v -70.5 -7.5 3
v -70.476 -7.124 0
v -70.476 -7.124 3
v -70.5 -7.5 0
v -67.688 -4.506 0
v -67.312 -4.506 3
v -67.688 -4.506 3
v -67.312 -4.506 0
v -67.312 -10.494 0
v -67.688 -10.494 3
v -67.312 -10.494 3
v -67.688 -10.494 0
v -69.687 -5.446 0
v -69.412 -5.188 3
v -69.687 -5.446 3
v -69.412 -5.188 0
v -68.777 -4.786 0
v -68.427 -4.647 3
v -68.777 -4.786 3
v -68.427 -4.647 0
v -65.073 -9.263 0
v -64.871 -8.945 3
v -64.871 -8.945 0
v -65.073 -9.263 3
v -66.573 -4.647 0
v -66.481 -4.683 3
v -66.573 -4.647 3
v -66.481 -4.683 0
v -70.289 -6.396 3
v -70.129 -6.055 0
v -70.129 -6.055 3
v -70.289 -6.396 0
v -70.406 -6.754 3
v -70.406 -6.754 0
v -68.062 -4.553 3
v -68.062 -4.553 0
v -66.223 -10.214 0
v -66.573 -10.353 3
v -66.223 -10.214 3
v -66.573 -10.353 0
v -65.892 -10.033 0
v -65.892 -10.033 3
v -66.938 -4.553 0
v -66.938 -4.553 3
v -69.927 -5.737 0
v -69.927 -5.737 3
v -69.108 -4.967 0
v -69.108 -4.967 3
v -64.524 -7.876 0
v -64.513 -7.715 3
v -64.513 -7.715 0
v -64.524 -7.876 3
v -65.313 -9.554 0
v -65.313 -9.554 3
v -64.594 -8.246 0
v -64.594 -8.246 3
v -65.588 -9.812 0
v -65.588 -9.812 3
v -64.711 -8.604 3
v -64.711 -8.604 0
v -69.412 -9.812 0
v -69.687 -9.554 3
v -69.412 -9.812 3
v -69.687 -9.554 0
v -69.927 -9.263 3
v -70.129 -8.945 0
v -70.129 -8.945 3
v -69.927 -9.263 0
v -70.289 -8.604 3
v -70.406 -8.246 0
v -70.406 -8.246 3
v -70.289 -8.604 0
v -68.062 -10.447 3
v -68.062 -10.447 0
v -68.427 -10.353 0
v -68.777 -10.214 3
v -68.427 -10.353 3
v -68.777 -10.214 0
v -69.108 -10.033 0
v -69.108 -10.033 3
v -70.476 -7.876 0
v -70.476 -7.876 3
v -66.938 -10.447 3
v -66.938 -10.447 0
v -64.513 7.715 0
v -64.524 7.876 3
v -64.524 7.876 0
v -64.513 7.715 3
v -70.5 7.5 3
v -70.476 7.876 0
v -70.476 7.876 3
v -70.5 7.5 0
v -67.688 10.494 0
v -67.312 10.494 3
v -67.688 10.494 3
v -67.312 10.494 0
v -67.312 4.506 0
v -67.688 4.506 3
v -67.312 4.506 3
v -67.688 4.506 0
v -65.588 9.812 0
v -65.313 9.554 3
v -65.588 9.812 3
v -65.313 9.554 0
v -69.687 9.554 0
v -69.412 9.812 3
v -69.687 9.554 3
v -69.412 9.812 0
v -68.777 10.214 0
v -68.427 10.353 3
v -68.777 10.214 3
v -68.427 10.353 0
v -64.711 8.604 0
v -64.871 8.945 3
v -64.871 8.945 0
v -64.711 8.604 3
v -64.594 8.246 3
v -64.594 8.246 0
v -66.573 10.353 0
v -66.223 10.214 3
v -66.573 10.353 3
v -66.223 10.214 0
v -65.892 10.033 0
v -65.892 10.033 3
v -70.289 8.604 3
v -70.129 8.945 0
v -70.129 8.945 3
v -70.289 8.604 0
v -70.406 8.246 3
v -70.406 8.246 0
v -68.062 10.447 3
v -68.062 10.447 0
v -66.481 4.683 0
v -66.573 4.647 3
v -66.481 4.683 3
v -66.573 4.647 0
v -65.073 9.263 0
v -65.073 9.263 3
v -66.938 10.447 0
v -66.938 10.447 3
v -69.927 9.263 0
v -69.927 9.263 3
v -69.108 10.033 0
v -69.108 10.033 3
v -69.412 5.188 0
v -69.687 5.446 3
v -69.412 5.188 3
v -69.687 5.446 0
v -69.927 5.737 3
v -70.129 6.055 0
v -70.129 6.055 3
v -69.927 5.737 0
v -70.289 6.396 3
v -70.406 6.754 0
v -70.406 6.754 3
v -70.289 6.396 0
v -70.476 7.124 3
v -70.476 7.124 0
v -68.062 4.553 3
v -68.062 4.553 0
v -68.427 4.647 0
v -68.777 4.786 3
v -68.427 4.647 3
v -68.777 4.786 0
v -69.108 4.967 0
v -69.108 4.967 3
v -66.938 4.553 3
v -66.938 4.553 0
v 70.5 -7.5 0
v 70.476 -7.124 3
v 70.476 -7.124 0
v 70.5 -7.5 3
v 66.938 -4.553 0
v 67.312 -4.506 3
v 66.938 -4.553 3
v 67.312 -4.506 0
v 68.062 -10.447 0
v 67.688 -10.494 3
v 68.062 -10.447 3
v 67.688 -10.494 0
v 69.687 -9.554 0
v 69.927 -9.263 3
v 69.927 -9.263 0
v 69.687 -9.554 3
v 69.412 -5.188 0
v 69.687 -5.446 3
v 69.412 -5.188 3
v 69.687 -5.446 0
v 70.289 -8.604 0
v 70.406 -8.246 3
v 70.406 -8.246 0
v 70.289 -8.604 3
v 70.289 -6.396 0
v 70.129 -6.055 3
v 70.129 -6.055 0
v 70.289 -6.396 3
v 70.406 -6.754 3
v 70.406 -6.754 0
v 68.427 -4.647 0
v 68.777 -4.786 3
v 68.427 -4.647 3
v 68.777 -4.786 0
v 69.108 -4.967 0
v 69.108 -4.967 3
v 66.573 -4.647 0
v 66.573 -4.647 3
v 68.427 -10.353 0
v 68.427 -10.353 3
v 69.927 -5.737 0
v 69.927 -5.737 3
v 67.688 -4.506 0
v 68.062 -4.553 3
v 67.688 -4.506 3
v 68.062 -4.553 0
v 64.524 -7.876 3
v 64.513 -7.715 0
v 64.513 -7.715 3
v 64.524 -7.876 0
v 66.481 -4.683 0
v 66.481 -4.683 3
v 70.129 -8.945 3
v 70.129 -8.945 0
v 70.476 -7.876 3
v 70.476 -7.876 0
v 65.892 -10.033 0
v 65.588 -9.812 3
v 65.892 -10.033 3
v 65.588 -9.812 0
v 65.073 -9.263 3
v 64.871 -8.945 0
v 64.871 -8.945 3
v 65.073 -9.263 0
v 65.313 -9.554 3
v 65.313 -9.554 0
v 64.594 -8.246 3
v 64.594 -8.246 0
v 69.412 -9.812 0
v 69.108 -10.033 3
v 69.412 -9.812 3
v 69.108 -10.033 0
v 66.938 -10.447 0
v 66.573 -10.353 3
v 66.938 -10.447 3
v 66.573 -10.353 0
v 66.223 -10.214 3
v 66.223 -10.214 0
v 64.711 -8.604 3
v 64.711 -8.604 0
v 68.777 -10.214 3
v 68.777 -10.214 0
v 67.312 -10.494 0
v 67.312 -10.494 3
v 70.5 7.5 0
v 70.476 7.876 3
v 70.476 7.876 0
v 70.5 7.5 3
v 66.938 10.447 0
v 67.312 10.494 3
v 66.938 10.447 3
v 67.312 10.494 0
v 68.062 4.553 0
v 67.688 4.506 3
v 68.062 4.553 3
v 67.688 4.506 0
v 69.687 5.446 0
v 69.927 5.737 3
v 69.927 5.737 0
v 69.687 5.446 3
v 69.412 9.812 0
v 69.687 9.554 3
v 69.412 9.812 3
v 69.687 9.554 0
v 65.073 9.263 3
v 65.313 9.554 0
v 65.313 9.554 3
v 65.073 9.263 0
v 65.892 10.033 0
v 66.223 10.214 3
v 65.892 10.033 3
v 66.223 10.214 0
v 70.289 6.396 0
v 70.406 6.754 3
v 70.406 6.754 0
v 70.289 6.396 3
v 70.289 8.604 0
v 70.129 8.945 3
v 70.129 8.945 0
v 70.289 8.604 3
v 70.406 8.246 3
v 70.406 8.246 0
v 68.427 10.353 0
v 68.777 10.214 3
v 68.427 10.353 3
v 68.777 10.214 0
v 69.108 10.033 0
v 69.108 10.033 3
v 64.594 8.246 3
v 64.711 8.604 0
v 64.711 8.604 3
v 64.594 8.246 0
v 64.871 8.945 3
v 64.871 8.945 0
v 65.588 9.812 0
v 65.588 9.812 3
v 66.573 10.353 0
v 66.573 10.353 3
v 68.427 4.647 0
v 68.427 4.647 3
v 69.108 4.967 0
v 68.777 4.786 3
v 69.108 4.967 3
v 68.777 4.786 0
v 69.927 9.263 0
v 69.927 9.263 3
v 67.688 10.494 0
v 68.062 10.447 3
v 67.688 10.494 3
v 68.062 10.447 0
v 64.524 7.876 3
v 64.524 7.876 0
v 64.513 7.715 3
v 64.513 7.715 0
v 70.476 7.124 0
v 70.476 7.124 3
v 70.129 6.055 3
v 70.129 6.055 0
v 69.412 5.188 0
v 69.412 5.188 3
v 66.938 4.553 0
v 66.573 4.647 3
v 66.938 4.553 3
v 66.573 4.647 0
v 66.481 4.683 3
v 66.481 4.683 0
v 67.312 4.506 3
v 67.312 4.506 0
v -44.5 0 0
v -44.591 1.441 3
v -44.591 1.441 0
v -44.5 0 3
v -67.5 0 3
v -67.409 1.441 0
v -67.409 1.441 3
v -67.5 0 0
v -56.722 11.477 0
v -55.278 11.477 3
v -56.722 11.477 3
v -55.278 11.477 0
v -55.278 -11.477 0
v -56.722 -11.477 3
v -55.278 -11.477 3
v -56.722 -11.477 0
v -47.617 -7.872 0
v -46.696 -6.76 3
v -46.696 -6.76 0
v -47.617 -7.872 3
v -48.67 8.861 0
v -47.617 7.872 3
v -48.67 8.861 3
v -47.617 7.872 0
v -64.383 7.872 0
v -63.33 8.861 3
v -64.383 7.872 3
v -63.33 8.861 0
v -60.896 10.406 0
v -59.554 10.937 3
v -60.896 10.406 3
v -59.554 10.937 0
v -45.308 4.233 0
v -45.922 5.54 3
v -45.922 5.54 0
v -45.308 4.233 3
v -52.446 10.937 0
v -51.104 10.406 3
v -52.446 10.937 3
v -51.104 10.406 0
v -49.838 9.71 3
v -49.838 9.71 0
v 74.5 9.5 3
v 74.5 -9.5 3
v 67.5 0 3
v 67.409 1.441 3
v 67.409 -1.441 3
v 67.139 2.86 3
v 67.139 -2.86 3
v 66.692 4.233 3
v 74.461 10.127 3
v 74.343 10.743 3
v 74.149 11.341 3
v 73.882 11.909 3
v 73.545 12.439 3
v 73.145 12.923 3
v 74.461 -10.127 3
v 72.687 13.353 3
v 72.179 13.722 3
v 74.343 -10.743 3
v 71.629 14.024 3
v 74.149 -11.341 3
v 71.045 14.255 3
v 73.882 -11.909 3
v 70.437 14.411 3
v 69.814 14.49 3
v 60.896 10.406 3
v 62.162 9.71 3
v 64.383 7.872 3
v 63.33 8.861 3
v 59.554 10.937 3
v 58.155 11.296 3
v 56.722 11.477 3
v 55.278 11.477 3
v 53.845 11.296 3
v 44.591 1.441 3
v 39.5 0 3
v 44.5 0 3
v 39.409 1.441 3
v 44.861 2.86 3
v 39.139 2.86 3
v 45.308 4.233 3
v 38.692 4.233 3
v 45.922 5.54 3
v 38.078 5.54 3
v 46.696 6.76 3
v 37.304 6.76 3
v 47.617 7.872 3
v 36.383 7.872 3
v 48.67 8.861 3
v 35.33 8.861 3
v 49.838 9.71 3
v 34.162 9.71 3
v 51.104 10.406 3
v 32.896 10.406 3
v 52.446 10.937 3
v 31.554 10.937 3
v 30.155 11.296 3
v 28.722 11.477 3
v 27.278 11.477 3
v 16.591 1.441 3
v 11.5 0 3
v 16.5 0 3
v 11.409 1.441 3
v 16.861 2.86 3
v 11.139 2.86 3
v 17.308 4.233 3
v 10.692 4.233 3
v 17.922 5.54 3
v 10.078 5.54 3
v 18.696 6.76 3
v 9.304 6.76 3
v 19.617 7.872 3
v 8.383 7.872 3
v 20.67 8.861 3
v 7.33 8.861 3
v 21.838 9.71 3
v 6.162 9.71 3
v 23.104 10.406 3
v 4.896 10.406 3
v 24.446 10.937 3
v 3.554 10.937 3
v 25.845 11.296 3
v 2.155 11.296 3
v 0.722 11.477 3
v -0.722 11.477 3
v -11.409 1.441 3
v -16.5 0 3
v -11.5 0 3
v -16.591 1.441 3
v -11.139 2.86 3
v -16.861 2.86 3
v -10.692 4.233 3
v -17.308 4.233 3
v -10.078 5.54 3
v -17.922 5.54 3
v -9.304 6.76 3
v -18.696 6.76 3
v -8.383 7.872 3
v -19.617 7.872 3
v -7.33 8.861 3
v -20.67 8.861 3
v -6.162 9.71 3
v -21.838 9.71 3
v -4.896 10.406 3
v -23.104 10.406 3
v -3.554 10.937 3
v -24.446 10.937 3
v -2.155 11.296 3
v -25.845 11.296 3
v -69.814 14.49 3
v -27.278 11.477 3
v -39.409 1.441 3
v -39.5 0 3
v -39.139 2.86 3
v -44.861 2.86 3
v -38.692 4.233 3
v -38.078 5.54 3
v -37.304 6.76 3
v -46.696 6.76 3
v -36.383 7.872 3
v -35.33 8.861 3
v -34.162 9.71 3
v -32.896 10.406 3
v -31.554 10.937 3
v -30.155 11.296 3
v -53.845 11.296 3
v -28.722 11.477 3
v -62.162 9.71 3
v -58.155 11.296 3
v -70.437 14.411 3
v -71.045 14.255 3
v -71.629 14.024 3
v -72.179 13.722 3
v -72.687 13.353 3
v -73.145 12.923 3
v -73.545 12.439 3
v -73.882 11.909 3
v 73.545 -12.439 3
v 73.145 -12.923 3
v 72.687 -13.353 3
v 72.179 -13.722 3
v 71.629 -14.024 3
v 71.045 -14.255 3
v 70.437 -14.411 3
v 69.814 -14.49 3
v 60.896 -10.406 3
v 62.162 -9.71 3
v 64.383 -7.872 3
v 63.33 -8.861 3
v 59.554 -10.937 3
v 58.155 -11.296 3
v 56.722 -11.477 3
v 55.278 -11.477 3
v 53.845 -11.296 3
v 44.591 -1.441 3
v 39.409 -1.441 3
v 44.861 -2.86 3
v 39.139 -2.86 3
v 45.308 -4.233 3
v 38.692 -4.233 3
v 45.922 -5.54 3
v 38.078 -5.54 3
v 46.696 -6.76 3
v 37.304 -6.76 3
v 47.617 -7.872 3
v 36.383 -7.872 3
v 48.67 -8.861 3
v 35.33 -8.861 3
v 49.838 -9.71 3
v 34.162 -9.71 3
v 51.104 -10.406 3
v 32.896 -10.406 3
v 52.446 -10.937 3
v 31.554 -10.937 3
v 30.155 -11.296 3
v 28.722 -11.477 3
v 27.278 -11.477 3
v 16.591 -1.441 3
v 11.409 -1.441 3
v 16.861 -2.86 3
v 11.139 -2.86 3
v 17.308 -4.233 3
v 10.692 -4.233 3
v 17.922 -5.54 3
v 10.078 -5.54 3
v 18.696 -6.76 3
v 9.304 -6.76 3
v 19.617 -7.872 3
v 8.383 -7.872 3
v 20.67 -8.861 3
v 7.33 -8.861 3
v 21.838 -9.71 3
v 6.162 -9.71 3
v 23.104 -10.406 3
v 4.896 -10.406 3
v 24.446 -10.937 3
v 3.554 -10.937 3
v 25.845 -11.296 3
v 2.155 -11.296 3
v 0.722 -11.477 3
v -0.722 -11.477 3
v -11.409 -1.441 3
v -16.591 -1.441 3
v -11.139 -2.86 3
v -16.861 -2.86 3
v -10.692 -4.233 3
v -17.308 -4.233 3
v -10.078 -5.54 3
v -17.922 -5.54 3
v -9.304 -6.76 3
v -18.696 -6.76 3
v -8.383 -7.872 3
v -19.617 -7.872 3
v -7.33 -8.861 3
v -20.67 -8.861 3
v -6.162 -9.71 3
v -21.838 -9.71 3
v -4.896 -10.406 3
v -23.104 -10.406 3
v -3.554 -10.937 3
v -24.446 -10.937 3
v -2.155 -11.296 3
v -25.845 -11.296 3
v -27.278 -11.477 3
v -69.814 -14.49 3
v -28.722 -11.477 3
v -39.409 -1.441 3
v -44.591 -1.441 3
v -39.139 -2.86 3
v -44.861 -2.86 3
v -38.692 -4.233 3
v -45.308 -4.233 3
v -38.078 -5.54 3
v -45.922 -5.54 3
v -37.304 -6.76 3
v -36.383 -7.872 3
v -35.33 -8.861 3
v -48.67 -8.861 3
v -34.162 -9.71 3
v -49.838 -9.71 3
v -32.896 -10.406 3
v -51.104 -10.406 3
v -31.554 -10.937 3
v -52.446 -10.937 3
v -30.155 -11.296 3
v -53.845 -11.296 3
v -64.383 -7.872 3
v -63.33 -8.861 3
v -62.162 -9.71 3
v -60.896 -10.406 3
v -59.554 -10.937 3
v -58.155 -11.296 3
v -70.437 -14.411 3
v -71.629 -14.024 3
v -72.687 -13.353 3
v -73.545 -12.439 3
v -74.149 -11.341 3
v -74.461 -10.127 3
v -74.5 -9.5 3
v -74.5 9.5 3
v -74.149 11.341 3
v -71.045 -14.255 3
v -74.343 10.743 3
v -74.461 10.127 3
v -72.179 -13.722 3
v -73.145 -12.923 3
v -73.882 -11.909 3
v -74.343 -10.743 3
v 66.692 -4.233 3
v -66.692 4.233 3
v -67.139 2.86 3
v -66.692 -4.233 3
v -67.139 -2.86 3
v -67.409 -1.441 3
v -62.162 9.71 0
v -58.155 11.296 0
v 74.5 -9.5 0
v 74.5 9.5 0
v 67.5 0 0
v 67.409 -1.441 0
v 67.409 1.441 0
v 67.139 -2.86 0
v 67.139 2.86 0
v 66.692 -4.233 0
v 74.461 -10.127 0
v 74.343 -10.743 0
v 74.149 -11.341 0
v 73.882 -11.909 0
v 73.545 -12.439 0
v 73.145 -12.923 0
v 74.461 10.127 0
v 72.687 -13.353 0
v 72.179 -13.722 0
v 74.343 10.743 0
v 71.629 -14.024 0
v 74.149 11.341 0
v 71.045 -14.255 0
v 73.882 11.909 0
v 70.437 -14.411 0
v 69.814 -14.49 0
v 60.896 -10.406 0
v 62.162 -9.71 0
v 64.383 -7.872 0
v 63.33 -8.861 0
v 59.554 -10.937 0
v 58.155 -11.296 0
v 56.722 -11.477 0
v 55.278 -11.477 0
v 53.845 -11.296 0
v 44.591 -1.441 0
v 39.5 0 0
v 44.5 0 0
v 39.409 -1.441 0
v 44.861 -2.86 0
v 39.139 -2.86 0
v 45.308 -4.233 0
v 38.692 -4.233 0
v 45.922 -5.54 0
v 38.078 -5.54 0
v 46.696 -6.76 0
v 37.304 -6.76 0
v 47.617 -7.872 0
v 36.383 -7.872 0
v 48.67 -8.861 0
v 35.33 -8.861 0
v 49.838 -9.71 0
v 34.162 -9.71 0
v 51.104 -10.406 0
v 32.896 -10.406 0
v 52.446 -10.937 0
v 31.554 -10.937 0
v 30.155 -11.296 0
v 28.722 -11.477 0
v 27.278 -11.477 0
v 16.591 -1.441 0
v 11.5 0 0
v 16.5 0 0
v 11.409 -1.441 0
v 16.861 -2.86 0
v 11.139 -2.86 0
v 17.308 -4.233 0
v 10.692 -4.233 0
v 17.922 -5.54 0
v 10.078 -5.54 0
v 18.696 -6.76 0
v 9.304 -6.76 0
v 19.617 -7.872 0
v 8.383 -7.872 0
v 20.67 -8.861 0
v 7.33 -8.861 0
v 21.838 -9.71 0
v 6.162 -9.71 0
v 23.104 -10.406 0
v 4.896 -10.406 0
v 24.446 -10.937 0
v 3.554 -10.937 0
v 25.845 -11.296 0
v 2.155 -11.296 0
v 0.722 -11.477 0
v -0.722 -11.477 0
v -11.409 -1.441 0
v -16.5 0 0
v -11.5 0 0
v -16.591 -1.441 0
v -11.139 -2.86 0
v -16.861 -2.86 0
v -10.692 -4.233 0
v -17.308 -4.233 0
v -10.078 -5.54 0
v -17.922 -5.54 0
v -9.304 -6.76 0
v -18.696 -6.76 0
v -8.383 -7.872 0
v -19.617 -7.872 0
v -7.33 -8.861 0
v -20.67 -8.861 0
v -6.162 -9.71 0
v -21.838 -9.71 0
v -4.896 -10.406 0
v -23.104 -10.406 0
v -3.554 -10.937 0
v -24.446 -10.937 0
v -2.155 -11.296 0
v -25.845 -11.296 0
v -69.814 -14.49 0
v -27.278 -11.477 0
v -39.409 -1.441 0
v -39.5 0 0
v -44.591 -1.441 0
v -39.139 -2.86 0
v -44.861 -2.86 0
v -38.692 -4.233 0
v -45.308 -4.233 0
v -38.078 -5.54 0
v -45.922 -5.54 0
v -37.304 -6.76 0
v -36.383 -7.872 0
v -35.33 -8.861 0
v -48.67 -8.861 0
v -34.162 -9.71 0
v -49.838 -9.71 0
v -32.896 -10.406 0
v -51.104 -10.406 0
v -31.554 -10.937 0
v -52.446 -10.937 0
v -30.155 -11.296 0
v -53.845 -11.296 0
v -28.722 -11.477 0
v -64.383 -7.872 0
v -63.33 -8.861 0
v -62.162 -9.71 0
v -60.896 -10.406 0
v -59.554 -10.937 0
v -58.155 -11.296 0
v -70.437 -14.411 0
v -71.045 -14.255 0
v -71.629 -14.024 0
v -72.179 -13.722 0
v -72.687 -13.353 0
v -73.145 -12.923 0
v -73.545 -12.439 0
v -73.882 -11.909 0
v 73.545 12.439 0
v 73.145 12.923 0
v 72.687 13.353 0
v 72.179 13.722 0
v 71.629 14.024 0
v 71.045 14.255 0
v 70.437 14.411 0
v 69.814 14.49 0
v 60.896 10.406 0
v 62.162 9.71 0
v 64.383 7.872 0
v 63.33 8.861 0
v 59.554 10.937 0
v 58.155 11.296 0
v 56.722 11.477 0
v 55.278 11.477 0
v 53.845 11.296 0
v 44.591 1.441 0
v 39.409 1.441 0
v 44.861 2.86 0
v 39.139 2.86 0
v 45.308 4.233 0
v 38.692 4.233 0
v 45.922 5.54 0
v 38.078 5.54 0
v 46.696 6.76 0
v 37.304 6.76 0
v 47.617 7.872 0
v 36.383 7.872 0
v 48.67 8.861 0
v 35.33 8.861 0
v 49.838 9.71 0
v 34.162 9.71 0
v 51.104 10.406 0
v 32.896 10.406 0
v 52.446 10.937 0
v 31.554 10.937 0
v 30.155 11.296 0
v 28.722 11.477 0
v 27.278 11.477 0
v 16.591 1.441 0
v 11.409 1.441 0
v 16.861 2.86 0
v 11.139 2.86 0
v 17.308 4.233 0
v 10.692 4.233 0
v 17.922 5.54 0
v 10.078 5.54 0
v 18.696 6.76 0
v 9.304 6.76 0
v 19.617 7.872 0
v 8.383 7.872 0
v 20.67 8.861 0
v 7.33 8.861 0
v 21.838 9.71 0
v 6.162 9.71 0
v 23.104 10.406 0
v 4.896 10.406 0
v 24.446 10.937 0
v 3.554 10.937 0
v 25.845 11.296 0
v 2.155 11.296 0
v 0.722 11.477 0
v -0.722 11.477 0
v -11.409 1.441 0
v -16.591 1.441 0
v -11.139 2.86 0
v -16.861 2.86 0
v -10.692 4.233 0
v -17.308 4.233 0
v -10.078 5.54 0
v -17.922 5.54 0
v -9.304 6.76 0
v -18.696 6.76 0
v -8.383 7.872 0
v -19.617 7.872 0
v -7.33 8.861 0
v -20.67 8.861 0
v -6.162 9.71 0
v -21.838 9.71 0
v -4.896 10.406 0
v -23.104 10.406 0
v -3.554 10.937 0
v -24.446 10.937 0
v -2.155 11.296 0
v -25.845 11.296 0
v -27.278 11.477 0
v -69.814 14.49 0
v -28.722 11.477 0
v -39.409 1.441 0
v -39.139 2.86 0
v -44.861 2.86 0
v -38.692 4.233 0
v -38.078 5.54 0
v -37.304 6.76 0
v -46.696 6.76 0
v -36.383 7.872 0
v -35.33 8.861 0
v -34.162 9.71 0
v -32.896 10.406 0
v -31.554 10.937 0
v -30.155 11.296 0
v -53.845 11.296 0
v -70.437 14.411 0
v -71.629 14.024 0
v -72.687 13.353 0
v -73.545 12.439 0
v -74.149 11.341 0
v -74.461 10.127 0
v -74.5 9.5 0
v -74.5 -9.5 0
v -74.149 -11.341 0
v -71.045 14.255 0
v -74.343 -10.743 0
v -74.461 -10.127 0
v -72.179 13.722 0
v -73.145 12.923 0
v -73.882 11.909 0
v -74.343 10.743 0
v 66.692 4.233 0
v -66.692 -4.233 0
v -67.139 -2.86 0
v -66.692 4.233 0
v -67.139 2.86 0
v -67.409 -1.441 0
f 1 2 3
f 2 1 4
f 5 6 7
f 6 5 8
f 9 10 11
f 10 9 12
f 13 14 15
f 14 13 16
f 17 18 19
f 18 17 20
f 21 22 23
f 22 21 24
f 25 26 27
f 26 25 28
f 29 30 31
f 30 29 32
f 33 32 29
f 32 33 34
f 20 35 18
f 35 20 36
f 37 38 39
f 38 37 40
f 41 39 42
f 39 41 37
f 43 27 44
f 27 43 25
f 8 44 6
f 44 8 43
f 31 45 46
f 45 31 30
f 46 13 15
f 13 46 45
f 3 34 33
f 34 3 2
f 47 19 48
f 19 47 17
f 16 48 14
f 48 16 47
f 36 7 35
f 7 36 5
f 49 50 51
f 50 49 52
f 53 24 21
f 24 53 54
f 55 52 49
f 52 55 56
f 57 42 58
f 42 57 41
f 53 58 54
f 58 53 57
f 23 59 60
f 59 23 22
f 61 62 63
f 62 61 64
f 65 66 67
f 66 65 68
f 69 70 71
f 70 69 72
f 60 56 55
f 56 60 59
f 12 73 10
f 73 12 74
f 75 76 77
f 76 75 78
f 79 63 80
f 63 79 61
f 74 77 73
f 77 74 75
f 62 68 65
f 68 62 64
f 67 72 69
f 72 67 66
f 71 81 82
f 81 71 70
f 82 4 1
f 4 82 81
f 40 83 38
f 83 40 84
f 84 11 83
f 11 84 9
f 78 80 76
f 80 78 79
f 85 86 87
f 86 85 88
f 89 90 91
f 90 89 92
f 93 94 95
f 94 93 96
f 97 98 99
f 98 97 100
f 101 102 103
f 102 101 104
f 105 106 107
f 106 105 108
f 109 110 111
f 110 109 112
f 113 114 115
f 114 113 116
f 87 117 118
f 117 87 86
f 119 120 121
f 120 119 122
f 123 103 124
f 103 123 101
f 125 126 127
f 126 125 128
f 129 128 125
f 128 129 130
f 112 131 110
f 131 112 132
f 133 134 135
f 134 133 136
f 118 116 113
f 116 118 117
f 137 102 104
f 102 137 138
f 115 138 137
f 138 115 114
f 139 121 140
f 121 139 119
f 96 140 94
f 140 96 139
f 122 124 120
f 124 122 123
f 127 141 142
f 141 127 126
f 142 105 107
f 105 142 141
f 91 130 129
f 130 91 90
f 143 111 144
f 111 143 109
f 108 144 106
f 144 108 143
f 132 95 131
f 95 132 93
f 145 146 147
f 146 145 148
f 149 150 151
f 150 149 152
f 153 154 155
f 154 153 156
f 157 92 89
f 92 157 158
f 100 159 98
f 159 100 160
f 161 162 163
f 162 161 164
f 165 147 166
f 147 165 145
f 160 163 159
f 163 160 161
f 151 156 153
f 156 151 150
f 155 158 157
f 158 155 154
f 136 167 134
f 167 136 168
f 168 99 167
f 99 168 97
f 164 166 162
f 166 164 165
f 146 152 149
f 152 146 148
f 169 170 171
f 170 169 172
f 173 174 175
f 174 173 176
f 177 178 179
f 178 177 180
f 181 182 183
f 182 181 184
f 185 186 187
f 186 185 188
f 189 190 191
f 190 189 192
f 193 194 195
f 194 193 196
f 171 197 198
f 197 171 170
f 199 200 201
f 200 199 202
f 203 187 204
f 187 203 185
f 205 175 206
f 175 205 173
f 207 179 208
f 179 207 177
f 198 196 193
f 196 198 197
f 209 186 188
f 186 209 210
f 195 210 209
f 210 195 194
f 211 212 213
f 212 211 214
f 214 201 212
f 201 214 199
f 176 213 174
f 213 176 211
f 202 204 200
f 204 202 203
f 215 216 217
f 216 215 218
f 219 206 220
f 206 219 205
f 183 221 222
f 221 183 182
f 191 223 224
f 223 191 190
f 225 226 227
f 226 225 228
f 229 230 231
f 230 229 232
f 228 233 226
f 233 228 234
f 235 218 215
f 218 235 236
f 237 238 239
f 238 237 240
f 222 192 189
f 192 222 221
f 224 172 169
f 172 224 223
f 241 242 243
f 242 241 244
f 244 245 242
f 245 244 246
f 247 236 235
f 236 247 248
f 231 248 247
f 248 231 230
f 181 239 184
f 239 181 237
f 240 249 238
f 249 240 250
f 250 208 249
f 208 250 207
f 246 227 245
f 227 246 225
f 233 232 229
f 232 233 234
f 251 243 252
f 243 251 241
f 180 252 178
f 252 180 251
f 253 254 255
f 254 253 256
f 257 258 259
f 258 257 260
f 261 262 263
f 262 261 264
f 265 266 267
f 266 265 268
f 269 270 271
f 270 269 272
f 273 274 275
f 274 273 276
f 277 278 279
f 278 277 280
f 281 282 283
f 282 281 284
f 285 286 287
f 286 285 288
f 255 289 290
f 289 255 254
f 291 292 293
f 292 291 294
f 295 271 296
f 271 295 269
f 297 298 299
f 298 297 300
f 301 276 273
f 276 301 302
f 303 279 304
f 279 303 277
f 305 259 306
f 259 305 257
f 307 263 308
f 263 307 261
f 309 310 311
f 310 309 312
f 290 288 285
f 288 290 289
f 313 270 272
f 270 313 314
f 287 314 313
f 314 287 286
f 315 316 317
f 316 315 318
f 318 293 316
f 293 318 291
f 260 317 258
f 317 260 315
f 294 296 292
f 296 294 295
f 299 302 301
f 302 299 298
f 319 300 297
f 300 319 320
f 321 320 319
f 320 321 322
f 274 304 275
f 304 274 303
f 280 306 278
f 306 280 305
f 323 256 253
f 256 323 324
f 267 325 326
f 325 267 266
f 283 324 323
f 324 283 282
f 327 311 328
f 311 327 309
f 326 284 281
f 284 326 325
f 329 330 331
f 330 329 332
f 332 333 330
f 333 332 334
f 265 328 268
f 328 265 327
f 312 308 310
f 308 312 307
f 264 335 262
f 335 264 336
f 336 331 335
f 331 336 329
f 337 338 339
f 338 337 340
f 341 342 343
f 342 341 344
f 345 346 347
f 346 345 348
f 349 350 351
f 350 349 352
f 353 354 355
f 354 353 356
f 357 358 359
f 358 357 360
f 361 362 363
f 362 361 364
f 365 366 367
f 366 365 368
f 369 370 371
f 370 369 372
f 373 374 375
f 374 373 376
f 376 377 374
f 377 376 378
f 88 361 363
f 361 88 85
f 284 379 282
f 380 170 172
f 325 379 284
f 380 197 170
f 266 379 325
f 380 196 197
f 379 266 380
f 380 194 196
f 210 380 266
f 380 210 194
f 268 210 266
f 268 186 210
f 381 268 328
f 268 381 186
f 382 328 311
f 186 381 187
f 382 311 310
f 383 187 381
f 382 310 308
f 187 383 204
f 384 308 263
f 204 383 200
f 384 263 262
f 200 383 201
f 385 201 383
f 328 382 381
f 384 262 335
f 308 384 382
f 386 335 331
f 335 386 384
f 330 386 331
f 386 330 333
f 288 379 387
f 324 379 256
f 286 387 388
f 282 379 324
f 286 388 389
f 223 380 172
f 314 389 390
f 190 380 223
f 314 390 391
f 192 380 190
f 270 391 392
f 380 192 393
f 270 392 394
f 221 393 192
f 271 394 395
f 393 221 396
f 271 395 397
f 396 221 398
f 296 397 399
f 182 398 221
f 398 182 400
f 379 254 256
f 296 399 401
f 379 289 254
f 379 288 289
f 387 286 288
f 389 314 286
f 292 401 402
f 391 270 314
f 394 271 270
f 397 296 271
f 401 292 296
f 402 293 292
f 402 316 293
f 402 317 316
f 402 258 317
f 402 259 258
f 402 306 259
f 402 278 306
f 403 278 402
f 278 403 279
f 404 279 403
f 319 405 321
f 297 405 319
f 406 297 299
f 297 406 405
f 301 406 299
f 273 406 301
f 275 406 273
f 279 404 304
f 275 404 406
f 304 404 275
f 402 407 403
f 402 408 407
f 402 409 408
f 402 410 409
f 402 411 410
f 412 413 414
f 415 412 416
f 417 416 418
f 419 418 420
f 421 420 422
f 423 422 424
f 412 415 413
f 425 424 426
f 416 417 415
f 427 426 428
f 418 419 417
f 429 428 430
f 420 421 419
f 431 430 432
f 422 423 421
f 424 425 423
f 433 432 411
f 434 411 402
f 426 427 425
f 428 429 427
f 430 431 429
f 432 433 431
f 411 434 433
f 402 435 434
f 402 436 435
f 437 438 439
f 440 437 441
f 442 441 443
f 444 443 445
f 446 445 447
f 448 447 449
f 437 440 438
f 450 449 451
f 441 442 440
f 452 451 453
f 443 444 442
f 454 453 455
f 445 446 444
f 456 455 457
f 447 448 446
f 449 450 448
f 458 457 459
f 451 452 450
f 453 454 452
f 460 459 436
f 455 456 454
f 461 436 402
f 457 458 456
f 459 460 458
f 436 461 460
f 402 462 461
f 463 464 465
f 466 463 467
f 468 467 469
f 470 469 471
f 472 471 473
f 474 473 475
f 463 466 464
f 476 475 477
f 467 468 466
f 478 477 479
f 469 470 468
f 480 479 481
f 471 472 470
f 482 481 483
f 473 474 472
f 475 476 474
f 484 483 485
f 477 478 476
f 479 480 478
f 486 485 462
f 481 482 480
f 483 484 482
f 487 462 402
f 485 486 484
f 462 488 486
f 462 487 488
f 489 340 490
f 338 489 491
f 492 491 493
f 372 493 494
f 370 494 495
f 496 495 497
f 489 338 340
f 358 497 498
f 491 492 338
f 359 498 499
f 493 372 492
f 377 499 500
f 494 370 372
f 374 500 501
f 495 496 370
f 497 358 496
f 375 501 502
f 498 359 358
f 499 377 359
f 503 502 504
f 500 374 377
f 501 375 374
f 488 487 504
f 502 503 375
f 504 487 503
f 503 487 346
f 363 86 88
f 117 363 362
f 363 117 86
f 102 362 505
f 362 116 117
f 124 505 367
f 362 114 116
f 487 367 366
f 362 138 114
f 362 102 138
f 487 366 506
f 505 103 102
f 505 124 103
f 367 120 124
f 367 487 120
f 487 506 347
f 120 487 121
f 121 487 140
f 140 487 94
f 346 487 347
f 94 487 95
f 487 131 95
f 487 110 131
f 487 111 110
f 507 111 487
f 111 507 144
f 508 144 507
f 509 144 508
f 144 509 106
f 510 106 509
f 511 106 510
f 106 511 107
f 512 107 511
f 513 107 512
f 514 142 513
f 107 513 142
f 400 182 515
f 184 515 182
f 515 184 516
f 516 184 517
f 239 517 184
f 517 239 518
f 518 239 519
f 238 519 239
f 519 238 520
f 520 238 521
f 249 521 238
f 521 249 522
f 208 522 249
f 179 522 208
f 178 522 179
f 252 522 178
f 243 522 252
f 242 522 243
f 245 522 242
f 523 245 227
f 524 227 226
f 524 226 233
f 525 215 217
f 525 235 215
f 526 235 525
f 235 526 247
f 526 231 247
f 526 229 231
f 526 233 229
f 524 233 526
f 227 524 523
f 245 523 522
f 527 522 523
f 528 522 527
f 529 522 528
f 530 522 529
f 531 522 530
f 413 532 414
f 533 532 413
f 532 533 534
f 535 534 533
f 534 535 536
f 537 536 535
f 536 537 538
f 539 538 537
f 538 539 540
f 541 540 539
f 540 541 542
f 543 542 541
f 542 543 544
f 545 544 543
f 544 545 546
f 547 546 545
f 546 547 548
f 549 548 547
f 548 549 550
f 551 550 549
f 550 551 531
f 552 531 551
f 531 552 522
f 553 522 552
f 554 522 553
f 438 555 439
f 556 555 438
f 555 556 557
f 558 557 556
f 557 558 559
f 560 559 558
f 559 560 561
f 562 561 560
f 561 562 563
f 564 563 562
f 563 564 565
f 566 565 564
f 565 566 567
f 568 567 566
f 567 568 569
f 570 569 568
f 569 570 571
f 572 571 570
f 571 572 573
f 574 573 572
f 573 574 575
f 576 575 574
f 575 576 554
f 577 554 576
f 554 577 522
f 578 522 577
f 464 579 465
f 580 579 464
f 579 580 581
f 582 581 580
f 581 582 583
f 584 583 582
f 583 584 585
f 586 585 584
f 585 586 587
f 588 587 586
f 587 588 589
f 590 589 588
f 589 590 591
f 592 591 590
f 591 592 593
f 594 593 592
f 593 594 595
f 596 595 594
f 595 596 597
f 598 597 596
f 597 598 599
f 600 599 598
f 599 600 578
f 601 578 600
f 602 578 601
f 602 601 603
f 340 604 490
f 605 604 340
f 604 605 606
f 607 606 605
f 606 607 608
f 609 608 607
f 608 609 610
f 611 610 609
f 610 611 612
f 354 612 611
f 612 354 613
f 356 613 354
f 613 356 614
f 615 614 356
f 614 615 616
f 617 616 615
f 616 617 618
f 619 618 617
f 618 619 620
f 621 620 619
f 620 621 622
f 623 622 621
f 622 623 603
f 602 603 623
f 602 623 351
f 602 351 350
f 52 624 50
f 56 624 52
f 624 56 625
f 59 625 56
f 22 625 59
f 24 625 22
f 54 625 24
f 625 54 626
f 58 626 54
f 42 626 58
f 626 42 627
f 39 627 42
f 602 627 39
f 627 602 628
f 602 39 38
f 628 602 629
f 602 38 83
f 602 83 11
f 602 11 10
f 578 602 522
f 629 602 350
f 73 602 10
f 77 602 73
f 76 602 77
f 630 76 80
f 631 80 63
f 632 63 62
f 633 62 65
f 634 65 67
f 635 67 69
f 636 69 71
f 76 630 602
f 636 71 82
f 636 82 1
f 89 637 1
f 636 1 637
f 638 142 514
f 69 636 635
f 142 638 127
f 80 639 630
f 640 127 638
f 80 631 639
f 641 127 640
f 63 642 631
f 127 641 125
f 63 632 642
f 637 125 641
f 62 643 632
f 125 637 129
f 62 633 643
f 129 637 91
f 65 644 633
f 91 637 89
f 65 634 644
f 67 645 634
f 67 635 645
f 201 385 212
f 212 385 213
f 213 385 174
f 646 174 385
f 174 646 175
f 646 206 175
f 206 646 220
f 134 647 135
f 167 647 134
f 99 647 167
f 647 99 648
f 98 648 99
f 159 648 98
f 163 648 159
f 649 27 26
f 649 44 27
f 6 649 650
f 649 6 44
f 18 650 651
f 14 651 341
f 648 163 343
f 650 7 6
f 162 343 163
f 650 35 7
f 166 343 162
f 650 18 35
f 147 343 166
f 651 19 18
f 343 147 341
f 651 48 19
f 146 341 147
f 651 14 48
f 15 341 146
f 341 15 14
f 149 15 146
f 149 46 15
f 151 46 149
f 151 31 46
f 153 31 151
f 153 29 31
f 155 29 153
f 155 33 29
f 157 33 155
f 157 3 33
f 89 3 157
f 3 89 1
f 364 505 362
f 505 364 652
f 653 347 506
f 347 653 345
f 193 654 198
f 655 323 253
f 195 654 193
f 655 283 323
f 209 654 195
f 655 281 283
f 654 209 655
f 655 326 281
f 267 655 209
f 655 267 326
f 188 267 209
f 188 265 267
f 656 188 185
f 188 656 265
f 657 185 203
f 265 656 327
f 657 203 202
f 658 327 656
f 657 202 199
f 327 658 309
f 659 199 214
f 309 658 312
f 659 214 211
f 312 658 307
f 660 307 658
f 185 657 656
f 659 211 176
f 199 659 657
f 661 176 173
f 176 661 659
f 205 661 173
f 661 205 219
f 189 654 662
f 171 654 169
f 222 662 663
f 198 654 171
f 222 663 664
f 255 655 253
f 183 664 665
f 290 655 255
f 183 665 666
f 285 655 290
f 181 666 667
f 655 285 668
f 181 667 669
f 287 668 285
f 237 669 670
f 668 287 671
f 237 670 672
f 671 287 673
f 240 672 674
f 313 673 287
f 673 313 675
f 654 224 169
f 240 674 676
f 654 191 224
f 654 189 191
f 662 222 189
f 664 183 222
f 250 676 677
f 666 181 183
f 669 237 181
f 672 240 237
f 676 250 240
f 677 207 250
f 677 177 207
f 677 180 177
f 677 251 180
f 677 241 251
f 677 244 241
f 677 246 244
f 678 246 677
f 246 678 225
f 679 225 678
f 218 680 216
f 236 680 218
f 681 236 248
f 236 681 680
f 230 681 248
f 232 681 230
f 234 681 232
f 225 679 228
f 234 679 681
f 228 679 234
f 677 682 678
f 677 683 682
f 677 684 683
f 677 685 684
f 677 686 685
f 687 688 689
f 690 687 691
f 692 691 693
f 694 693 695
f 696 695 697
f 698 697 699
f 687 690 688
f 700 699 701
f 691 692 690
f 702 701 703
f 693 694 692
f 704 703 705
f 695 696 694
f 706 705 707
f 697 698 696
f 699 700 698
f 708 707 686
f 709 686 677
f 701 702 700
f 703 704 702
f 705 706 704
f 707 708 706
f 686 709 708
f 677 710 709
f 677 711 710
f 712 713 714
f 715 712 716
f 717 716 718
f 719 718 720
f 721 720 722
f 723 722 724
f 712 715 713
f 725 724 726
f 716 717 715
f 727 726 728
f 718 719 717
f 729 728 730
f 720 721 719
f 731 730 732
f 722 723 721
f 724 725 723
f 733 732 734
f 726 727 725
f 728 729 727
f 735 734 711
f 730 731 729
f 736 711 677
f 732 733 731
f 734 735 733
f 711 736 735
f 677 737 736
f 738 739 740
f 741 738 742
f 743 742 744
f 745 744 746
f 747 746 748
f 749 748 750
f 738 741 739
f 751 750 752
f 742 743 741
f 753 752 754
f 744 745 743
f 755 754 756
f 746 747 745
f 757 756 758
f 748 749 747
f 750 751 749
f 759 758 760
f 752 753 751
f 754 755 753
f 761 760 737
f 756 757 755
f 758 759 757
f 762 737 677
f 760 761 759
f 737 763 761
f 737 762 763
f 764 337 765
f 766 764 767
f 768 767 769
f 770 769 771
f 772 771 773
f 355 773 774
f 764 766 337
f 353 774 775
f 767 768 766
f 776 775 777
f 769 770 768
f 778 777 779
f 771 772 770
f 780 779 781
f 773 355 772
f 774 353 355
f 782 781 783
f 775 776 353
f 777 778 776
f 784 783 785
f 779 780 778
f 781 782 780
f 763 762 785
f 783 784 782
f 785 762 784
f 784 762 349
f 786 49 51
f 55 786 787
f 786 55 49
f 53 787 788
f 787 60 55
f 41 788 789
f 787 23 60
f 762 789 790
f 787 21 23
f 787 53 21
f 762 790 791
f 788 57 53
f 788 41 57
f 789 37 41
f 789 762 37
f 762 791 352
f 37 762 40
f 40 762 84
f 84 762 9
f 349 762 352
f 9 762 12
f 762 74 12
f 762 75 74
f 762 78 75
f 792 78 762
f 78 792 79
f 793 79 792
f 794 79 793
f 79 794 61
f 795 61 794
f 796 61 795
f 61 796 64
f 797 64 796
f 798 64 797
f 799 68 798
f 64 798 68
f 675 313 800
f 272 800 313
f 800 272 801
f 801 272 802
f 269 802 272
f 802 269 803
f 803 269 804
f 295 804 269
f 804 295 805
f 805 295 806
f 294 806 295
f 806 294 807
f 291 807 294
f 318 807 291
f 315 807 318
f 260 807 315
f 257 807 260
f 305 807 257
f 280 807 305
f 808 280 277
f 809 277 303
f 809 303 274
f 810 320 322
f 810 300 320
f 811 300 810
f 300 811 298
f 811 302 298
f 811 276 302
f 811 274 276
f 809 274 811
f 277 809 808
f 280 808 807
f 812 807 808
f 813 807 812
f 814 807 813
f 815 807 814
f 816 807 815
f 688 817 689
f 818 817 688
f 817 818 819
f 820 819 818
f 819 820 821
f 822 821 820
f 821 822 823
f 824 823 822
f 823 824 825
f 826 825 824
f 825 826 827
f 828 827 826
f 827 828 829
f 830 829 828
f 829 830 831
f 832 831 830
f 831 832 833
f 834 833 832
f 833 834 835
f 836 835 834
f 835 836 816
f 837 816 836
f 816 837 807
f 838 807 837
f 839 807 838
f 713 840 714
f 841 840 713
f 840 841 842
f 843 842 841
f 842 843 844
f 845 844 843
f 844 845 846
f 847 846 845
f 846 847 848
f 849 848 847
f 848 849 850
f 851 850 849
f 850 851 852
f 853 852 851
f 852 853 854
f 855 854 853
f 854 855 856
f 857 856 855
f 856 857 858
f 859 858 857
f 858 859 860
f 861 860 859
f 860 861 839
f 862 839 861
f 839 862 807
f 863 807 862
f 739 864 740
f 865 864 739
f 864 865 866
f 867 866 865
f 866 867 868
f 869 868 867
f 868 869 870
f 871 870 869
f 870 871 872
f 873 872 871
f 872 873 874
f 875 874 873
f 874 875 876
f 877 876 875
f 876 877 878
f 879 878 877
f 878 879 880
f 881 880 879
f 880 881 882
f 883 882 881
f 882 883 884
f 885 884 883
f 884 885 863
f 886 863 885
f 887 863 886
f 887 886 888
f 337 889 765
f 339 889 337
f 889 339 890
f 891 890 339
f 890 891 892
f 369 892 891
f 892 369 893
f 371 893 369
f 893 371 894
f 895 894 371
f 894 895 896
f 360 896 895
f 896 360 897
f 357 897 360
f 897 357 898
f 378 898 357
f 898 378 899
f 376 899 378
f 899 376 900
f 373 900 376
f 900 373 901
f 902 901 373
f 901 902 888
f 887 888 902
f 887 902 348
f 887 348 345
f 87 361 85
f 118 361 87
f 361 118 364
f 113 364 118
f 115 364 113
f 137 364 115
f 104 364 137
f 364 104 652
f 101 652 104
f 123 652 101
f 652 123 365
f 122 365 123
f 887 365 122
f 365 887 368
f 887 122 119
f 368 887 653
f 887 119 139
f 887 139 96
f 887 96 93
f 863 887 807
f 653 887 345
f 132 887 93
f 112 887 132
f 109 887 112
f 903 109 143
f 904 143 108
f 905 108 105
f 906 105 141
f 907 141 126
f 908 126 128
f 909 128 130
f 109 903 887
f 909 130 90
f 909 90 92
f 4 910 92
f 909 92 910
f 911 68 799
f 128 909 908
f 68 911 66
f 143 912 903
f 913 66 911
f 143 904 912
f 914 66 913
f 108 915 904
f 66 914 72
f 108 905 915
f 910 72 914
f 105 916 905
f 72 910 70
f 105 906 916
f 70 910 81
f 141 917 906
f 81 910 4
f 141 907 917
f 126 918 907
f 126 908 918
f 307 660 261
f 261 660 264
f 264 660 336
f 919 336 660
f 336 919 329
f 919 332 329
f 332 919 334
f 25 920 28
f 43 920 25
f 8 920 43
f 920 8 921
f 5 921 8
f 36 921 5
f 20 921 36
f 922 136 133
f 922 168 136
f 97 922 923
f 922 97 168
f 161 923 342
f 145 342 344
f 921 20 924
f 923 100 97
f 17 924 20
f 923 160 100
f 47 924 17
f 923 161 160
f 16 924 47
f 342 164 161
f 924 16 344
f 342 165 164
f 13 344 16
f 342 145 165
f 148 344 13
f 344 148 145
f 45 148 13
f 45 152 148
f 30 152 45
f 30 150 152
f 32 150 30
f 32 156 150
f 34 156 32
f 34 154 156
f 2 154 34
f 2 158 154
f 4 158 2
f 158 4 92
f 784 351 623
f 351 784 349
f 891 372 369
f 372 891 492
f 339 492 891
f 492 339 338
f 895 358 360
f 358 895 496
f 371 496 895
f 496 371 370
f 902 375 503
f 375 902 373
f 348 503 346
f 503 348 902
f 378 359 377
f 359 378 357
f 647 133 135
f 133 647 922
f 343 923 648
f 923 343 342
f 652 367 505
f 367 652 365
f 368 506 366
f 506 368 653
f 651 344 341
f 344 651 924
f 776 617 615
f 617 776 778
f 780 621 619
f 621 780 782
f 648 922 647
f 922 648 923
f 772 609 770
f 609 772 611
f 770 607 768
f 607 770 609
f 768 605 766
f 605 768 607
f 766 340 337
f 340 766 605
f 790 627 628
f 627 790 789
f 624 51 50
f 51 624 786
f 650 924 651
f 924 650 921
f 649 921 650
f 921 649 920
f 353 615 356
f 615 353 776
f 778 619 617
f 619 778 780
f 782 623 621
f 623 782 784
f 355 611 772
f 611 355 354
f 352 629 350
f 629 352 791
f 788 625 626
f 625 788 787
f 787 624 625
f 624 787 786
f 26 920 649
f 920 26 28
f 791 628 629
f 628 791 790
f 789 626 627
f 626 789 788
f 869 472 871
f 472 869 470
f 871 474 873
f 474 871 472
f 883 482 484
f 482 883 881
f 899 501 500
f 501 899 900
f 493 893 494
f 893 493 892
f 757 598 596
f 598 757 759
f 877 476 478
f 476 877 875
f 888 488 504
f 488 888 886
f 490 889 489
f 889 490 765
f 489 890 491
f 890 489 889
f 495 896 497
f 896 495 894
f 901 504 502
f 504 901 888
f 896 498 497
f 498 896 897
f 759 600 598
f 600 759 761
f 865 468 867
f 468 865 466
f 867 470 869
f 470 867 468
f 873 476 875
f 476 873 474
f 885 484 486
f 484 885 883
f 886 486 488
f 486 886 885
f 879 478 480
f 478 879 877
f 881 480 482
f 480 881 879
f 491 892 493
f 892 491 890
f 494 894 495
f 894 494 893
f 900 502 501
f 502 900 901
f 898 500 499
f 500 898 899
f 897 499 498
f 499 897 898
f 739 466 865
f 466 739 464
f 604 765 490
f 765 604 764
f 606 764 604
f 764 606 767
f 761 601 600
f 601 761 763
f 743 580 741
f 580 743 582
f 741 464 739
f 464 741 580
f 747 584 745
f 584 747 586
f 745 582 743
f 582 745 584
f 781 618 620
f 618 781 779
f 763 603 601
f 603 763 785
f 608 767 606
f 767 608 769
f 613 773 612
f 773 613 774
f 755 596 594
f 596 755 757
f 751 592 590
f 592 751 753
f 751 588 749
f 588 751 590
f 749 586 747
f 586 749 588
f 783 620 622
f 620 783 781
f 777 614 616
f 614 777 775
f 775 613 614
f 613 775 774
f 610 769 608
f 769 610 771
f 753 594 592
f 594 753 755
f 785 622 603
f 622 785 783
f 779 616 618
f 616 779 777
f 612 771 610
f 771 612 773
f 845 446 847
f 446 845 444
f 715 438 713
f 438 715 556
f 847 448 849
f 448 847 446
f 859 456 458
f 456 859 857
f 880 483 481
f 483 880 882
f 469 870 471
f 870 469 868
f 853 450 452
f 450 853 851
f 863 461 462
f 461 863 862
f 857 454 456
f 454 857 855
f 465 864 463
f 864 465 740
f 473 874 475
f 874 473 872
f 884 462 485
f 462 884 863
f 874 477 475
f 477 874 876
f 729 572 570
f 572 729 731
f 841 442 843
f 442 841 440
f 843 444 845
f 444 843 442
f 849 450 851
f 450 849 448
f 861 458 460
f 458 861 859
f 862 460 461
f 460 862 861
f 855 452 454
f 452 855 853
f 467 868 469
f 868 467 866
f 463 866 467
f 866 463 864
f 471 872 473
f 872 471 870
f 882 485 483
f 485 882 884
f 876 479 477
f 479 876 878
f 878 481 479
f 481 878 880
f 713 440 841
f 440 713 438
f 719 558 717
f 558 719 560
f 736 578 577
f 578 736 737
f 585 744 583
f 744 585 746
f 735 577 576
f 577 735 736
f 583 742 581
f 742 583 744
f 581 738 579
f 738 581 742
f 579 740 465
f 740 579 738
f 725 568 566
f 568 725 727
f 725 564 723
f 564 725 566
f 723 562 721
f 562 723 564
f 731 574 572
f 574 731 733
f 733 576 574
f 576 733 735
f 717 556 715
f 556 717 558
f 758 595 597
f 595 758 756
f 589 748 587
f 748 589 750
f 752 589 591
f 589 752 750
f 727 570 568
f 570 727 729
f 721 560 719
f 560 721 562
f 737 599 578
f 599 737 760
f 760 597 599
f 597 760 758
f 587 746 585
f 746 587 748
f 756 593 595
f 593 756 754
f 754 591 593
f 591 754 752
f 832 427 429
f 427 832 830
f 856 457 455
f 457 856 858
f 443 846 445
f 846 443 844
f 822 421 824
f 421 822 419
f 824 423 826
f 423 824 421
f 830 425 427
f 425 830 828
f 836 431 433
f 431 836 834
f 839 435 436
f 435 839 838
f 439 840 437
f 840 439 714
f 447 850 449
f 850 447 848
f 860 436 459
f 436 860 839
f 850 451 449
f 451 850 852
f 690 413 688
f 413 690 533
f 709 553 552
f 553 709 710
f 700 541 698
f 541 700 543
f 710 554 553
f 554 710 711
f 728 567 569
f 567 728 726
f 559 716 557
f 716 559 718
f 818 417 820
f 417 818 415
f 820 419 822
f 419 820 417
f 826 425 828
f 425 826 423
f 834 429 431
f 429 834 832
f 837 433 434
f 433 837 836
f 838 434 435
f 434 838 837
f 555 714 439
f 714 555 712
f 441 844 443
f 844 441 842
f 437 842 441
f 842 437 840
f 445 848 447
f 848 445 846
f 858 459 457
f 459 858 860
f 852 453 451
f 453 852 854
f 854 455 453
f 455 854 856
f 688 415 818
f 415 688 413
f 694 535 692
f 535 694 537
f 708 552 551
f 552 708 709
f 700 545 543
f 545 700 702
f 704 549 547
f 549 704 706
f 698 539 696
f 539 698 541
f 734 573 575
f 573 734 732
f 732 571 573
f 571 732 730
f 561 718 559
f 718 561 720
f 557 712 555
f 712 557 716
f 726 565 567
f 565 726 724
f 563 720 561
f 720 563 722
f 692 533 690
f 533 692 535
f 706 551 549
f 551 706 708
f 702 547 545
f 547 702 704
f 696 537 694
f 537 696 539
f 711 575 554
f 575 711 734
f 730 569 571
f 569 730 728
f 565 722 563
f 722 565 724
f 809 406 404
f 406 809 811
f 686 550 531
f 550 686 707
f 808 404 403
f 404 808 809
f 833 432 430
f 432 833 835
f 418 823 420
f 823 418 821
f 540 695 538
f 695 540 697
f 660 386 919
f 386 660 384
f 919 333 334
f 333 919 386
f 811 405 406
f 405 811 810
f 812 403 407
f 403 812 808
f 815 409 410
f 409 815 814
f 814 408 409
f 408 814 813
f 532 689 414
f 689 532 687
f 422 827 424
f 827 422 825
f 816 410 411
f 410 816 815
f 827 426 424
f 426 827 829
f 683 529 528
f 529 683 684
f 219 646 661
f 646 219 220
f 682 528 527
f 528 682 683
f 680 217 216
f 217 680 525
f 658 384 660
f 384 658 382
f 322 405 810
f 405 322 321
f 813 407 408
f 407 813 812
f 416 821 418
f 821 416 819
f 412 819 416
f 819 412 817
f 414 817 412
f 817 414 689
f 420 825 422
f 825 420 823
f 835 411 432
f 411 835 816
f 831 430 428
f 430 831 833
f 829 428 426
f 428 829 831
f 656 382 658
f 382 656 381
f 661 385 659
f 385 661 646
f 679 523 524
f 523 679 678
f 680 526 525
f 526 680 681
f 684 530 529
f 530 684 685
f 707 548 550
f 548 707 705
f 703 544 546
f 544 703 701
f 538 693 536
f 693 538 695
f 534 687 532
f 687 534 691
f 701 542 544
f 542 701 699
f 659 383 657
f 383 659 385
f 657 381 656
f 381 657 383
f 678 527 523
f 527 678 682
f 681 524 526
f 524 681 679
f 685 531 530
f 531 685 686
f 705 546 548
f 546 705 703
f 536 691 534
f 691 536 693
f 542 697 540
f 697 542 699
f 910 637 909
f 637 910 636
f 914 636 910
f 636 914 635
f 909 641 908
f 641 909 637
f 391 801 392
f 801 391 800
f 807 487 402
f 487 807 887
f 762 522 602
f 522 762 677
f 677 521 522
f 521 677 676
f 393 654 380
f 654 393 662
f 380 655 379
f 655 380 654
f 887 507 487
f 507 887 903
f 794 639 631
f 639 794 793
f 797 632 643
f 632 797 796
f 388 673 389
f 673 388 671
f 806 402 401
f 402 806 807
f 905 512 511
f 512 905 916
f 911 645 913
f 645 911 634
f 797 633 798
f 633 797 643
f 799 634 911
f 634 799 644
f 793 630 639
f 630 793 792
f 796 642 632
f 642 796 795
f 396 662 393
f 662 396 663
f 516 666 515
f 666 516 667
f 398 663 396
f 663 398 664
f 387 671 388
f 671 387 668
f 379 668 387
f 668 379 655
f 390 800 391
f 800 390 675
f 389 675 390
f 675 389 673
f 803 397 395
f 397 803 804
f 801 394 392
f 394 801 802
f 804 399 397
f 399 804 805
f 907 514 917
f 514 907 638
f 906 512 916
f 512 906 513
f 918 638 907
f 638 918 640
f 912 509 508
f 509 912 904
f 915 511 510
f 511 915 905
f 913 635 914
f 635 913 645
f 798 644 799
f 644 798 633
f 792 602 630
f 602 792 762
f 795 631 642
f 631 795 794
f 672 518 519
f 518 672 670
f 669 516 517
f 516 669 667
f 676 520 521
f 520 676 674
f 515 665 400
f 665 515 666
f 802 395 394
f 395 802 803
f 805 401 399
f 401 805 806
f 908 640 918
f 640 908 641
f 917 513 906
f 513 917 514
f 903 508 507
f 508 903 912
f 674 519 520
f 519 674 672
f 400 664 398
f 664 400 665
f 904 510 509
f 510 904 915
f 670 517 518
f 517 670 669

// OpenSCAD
$fn = 50;


difference() {
	union() {
		hull() {
			translate(v = [-69.5000000000, 9.5000000000, 0]) {
				cylinder(h = 3, r = 5);
			}
			translate(v = [69.5000000000, 9.5000000000, 0]) {
				cylinder(h = 3, r = 5);
			}
			translate(v = [-69.5000000000, -9.5000000000, 0]) {
				cylinder(h = 3, r = 5);
			}
			translate(v = [69.5000000000, -9.5000000000, 0]) {
				cylinder(h = 3, r = 5);
			}
		}
	}
	union() {
		#translate(v = [-67.5000000000, -7.5000000000, -100.0000000000]) {
			cylinder(h = 200, r = 3.0000000000);
		}
		#translate(v = [-67.5000000000, 7.5000000000, -100.0000000000]) {
			cylinder(h = 200, r = 3.0000000000);
		}
		#translate(v = [67.5000000000, -7.5000000000, -100.0000000000]) {
			cylinder(h = 200, r = 3.0000000000);
		}
		#translate(v = [67.5000000000, 7.5000000000, -100.0000000000]) {
			cylinder(h = 200, r = 3.0000000000);
		}
		#translate(v = [-56.0000000000, 0, 0]) {
			cylinder(h = 3, r = 11.5000000000);
		}
		#translate(v = [-28.0000000000, 0, 0]) {
			cylinder(h = 3, r = 11.5000000000);
		}
		#cylinder(h = 3, r = 11.5000000000);
		#translate(v = [28.0000000000, 0, 0]) {
			cylinder(h = 3, r = 11.5000000000);
		}
		#translate(v = [56.0000000000, 0, 0]) {
			cylinder(h = 3, r = 11.5000000000);
		}
	}
}
